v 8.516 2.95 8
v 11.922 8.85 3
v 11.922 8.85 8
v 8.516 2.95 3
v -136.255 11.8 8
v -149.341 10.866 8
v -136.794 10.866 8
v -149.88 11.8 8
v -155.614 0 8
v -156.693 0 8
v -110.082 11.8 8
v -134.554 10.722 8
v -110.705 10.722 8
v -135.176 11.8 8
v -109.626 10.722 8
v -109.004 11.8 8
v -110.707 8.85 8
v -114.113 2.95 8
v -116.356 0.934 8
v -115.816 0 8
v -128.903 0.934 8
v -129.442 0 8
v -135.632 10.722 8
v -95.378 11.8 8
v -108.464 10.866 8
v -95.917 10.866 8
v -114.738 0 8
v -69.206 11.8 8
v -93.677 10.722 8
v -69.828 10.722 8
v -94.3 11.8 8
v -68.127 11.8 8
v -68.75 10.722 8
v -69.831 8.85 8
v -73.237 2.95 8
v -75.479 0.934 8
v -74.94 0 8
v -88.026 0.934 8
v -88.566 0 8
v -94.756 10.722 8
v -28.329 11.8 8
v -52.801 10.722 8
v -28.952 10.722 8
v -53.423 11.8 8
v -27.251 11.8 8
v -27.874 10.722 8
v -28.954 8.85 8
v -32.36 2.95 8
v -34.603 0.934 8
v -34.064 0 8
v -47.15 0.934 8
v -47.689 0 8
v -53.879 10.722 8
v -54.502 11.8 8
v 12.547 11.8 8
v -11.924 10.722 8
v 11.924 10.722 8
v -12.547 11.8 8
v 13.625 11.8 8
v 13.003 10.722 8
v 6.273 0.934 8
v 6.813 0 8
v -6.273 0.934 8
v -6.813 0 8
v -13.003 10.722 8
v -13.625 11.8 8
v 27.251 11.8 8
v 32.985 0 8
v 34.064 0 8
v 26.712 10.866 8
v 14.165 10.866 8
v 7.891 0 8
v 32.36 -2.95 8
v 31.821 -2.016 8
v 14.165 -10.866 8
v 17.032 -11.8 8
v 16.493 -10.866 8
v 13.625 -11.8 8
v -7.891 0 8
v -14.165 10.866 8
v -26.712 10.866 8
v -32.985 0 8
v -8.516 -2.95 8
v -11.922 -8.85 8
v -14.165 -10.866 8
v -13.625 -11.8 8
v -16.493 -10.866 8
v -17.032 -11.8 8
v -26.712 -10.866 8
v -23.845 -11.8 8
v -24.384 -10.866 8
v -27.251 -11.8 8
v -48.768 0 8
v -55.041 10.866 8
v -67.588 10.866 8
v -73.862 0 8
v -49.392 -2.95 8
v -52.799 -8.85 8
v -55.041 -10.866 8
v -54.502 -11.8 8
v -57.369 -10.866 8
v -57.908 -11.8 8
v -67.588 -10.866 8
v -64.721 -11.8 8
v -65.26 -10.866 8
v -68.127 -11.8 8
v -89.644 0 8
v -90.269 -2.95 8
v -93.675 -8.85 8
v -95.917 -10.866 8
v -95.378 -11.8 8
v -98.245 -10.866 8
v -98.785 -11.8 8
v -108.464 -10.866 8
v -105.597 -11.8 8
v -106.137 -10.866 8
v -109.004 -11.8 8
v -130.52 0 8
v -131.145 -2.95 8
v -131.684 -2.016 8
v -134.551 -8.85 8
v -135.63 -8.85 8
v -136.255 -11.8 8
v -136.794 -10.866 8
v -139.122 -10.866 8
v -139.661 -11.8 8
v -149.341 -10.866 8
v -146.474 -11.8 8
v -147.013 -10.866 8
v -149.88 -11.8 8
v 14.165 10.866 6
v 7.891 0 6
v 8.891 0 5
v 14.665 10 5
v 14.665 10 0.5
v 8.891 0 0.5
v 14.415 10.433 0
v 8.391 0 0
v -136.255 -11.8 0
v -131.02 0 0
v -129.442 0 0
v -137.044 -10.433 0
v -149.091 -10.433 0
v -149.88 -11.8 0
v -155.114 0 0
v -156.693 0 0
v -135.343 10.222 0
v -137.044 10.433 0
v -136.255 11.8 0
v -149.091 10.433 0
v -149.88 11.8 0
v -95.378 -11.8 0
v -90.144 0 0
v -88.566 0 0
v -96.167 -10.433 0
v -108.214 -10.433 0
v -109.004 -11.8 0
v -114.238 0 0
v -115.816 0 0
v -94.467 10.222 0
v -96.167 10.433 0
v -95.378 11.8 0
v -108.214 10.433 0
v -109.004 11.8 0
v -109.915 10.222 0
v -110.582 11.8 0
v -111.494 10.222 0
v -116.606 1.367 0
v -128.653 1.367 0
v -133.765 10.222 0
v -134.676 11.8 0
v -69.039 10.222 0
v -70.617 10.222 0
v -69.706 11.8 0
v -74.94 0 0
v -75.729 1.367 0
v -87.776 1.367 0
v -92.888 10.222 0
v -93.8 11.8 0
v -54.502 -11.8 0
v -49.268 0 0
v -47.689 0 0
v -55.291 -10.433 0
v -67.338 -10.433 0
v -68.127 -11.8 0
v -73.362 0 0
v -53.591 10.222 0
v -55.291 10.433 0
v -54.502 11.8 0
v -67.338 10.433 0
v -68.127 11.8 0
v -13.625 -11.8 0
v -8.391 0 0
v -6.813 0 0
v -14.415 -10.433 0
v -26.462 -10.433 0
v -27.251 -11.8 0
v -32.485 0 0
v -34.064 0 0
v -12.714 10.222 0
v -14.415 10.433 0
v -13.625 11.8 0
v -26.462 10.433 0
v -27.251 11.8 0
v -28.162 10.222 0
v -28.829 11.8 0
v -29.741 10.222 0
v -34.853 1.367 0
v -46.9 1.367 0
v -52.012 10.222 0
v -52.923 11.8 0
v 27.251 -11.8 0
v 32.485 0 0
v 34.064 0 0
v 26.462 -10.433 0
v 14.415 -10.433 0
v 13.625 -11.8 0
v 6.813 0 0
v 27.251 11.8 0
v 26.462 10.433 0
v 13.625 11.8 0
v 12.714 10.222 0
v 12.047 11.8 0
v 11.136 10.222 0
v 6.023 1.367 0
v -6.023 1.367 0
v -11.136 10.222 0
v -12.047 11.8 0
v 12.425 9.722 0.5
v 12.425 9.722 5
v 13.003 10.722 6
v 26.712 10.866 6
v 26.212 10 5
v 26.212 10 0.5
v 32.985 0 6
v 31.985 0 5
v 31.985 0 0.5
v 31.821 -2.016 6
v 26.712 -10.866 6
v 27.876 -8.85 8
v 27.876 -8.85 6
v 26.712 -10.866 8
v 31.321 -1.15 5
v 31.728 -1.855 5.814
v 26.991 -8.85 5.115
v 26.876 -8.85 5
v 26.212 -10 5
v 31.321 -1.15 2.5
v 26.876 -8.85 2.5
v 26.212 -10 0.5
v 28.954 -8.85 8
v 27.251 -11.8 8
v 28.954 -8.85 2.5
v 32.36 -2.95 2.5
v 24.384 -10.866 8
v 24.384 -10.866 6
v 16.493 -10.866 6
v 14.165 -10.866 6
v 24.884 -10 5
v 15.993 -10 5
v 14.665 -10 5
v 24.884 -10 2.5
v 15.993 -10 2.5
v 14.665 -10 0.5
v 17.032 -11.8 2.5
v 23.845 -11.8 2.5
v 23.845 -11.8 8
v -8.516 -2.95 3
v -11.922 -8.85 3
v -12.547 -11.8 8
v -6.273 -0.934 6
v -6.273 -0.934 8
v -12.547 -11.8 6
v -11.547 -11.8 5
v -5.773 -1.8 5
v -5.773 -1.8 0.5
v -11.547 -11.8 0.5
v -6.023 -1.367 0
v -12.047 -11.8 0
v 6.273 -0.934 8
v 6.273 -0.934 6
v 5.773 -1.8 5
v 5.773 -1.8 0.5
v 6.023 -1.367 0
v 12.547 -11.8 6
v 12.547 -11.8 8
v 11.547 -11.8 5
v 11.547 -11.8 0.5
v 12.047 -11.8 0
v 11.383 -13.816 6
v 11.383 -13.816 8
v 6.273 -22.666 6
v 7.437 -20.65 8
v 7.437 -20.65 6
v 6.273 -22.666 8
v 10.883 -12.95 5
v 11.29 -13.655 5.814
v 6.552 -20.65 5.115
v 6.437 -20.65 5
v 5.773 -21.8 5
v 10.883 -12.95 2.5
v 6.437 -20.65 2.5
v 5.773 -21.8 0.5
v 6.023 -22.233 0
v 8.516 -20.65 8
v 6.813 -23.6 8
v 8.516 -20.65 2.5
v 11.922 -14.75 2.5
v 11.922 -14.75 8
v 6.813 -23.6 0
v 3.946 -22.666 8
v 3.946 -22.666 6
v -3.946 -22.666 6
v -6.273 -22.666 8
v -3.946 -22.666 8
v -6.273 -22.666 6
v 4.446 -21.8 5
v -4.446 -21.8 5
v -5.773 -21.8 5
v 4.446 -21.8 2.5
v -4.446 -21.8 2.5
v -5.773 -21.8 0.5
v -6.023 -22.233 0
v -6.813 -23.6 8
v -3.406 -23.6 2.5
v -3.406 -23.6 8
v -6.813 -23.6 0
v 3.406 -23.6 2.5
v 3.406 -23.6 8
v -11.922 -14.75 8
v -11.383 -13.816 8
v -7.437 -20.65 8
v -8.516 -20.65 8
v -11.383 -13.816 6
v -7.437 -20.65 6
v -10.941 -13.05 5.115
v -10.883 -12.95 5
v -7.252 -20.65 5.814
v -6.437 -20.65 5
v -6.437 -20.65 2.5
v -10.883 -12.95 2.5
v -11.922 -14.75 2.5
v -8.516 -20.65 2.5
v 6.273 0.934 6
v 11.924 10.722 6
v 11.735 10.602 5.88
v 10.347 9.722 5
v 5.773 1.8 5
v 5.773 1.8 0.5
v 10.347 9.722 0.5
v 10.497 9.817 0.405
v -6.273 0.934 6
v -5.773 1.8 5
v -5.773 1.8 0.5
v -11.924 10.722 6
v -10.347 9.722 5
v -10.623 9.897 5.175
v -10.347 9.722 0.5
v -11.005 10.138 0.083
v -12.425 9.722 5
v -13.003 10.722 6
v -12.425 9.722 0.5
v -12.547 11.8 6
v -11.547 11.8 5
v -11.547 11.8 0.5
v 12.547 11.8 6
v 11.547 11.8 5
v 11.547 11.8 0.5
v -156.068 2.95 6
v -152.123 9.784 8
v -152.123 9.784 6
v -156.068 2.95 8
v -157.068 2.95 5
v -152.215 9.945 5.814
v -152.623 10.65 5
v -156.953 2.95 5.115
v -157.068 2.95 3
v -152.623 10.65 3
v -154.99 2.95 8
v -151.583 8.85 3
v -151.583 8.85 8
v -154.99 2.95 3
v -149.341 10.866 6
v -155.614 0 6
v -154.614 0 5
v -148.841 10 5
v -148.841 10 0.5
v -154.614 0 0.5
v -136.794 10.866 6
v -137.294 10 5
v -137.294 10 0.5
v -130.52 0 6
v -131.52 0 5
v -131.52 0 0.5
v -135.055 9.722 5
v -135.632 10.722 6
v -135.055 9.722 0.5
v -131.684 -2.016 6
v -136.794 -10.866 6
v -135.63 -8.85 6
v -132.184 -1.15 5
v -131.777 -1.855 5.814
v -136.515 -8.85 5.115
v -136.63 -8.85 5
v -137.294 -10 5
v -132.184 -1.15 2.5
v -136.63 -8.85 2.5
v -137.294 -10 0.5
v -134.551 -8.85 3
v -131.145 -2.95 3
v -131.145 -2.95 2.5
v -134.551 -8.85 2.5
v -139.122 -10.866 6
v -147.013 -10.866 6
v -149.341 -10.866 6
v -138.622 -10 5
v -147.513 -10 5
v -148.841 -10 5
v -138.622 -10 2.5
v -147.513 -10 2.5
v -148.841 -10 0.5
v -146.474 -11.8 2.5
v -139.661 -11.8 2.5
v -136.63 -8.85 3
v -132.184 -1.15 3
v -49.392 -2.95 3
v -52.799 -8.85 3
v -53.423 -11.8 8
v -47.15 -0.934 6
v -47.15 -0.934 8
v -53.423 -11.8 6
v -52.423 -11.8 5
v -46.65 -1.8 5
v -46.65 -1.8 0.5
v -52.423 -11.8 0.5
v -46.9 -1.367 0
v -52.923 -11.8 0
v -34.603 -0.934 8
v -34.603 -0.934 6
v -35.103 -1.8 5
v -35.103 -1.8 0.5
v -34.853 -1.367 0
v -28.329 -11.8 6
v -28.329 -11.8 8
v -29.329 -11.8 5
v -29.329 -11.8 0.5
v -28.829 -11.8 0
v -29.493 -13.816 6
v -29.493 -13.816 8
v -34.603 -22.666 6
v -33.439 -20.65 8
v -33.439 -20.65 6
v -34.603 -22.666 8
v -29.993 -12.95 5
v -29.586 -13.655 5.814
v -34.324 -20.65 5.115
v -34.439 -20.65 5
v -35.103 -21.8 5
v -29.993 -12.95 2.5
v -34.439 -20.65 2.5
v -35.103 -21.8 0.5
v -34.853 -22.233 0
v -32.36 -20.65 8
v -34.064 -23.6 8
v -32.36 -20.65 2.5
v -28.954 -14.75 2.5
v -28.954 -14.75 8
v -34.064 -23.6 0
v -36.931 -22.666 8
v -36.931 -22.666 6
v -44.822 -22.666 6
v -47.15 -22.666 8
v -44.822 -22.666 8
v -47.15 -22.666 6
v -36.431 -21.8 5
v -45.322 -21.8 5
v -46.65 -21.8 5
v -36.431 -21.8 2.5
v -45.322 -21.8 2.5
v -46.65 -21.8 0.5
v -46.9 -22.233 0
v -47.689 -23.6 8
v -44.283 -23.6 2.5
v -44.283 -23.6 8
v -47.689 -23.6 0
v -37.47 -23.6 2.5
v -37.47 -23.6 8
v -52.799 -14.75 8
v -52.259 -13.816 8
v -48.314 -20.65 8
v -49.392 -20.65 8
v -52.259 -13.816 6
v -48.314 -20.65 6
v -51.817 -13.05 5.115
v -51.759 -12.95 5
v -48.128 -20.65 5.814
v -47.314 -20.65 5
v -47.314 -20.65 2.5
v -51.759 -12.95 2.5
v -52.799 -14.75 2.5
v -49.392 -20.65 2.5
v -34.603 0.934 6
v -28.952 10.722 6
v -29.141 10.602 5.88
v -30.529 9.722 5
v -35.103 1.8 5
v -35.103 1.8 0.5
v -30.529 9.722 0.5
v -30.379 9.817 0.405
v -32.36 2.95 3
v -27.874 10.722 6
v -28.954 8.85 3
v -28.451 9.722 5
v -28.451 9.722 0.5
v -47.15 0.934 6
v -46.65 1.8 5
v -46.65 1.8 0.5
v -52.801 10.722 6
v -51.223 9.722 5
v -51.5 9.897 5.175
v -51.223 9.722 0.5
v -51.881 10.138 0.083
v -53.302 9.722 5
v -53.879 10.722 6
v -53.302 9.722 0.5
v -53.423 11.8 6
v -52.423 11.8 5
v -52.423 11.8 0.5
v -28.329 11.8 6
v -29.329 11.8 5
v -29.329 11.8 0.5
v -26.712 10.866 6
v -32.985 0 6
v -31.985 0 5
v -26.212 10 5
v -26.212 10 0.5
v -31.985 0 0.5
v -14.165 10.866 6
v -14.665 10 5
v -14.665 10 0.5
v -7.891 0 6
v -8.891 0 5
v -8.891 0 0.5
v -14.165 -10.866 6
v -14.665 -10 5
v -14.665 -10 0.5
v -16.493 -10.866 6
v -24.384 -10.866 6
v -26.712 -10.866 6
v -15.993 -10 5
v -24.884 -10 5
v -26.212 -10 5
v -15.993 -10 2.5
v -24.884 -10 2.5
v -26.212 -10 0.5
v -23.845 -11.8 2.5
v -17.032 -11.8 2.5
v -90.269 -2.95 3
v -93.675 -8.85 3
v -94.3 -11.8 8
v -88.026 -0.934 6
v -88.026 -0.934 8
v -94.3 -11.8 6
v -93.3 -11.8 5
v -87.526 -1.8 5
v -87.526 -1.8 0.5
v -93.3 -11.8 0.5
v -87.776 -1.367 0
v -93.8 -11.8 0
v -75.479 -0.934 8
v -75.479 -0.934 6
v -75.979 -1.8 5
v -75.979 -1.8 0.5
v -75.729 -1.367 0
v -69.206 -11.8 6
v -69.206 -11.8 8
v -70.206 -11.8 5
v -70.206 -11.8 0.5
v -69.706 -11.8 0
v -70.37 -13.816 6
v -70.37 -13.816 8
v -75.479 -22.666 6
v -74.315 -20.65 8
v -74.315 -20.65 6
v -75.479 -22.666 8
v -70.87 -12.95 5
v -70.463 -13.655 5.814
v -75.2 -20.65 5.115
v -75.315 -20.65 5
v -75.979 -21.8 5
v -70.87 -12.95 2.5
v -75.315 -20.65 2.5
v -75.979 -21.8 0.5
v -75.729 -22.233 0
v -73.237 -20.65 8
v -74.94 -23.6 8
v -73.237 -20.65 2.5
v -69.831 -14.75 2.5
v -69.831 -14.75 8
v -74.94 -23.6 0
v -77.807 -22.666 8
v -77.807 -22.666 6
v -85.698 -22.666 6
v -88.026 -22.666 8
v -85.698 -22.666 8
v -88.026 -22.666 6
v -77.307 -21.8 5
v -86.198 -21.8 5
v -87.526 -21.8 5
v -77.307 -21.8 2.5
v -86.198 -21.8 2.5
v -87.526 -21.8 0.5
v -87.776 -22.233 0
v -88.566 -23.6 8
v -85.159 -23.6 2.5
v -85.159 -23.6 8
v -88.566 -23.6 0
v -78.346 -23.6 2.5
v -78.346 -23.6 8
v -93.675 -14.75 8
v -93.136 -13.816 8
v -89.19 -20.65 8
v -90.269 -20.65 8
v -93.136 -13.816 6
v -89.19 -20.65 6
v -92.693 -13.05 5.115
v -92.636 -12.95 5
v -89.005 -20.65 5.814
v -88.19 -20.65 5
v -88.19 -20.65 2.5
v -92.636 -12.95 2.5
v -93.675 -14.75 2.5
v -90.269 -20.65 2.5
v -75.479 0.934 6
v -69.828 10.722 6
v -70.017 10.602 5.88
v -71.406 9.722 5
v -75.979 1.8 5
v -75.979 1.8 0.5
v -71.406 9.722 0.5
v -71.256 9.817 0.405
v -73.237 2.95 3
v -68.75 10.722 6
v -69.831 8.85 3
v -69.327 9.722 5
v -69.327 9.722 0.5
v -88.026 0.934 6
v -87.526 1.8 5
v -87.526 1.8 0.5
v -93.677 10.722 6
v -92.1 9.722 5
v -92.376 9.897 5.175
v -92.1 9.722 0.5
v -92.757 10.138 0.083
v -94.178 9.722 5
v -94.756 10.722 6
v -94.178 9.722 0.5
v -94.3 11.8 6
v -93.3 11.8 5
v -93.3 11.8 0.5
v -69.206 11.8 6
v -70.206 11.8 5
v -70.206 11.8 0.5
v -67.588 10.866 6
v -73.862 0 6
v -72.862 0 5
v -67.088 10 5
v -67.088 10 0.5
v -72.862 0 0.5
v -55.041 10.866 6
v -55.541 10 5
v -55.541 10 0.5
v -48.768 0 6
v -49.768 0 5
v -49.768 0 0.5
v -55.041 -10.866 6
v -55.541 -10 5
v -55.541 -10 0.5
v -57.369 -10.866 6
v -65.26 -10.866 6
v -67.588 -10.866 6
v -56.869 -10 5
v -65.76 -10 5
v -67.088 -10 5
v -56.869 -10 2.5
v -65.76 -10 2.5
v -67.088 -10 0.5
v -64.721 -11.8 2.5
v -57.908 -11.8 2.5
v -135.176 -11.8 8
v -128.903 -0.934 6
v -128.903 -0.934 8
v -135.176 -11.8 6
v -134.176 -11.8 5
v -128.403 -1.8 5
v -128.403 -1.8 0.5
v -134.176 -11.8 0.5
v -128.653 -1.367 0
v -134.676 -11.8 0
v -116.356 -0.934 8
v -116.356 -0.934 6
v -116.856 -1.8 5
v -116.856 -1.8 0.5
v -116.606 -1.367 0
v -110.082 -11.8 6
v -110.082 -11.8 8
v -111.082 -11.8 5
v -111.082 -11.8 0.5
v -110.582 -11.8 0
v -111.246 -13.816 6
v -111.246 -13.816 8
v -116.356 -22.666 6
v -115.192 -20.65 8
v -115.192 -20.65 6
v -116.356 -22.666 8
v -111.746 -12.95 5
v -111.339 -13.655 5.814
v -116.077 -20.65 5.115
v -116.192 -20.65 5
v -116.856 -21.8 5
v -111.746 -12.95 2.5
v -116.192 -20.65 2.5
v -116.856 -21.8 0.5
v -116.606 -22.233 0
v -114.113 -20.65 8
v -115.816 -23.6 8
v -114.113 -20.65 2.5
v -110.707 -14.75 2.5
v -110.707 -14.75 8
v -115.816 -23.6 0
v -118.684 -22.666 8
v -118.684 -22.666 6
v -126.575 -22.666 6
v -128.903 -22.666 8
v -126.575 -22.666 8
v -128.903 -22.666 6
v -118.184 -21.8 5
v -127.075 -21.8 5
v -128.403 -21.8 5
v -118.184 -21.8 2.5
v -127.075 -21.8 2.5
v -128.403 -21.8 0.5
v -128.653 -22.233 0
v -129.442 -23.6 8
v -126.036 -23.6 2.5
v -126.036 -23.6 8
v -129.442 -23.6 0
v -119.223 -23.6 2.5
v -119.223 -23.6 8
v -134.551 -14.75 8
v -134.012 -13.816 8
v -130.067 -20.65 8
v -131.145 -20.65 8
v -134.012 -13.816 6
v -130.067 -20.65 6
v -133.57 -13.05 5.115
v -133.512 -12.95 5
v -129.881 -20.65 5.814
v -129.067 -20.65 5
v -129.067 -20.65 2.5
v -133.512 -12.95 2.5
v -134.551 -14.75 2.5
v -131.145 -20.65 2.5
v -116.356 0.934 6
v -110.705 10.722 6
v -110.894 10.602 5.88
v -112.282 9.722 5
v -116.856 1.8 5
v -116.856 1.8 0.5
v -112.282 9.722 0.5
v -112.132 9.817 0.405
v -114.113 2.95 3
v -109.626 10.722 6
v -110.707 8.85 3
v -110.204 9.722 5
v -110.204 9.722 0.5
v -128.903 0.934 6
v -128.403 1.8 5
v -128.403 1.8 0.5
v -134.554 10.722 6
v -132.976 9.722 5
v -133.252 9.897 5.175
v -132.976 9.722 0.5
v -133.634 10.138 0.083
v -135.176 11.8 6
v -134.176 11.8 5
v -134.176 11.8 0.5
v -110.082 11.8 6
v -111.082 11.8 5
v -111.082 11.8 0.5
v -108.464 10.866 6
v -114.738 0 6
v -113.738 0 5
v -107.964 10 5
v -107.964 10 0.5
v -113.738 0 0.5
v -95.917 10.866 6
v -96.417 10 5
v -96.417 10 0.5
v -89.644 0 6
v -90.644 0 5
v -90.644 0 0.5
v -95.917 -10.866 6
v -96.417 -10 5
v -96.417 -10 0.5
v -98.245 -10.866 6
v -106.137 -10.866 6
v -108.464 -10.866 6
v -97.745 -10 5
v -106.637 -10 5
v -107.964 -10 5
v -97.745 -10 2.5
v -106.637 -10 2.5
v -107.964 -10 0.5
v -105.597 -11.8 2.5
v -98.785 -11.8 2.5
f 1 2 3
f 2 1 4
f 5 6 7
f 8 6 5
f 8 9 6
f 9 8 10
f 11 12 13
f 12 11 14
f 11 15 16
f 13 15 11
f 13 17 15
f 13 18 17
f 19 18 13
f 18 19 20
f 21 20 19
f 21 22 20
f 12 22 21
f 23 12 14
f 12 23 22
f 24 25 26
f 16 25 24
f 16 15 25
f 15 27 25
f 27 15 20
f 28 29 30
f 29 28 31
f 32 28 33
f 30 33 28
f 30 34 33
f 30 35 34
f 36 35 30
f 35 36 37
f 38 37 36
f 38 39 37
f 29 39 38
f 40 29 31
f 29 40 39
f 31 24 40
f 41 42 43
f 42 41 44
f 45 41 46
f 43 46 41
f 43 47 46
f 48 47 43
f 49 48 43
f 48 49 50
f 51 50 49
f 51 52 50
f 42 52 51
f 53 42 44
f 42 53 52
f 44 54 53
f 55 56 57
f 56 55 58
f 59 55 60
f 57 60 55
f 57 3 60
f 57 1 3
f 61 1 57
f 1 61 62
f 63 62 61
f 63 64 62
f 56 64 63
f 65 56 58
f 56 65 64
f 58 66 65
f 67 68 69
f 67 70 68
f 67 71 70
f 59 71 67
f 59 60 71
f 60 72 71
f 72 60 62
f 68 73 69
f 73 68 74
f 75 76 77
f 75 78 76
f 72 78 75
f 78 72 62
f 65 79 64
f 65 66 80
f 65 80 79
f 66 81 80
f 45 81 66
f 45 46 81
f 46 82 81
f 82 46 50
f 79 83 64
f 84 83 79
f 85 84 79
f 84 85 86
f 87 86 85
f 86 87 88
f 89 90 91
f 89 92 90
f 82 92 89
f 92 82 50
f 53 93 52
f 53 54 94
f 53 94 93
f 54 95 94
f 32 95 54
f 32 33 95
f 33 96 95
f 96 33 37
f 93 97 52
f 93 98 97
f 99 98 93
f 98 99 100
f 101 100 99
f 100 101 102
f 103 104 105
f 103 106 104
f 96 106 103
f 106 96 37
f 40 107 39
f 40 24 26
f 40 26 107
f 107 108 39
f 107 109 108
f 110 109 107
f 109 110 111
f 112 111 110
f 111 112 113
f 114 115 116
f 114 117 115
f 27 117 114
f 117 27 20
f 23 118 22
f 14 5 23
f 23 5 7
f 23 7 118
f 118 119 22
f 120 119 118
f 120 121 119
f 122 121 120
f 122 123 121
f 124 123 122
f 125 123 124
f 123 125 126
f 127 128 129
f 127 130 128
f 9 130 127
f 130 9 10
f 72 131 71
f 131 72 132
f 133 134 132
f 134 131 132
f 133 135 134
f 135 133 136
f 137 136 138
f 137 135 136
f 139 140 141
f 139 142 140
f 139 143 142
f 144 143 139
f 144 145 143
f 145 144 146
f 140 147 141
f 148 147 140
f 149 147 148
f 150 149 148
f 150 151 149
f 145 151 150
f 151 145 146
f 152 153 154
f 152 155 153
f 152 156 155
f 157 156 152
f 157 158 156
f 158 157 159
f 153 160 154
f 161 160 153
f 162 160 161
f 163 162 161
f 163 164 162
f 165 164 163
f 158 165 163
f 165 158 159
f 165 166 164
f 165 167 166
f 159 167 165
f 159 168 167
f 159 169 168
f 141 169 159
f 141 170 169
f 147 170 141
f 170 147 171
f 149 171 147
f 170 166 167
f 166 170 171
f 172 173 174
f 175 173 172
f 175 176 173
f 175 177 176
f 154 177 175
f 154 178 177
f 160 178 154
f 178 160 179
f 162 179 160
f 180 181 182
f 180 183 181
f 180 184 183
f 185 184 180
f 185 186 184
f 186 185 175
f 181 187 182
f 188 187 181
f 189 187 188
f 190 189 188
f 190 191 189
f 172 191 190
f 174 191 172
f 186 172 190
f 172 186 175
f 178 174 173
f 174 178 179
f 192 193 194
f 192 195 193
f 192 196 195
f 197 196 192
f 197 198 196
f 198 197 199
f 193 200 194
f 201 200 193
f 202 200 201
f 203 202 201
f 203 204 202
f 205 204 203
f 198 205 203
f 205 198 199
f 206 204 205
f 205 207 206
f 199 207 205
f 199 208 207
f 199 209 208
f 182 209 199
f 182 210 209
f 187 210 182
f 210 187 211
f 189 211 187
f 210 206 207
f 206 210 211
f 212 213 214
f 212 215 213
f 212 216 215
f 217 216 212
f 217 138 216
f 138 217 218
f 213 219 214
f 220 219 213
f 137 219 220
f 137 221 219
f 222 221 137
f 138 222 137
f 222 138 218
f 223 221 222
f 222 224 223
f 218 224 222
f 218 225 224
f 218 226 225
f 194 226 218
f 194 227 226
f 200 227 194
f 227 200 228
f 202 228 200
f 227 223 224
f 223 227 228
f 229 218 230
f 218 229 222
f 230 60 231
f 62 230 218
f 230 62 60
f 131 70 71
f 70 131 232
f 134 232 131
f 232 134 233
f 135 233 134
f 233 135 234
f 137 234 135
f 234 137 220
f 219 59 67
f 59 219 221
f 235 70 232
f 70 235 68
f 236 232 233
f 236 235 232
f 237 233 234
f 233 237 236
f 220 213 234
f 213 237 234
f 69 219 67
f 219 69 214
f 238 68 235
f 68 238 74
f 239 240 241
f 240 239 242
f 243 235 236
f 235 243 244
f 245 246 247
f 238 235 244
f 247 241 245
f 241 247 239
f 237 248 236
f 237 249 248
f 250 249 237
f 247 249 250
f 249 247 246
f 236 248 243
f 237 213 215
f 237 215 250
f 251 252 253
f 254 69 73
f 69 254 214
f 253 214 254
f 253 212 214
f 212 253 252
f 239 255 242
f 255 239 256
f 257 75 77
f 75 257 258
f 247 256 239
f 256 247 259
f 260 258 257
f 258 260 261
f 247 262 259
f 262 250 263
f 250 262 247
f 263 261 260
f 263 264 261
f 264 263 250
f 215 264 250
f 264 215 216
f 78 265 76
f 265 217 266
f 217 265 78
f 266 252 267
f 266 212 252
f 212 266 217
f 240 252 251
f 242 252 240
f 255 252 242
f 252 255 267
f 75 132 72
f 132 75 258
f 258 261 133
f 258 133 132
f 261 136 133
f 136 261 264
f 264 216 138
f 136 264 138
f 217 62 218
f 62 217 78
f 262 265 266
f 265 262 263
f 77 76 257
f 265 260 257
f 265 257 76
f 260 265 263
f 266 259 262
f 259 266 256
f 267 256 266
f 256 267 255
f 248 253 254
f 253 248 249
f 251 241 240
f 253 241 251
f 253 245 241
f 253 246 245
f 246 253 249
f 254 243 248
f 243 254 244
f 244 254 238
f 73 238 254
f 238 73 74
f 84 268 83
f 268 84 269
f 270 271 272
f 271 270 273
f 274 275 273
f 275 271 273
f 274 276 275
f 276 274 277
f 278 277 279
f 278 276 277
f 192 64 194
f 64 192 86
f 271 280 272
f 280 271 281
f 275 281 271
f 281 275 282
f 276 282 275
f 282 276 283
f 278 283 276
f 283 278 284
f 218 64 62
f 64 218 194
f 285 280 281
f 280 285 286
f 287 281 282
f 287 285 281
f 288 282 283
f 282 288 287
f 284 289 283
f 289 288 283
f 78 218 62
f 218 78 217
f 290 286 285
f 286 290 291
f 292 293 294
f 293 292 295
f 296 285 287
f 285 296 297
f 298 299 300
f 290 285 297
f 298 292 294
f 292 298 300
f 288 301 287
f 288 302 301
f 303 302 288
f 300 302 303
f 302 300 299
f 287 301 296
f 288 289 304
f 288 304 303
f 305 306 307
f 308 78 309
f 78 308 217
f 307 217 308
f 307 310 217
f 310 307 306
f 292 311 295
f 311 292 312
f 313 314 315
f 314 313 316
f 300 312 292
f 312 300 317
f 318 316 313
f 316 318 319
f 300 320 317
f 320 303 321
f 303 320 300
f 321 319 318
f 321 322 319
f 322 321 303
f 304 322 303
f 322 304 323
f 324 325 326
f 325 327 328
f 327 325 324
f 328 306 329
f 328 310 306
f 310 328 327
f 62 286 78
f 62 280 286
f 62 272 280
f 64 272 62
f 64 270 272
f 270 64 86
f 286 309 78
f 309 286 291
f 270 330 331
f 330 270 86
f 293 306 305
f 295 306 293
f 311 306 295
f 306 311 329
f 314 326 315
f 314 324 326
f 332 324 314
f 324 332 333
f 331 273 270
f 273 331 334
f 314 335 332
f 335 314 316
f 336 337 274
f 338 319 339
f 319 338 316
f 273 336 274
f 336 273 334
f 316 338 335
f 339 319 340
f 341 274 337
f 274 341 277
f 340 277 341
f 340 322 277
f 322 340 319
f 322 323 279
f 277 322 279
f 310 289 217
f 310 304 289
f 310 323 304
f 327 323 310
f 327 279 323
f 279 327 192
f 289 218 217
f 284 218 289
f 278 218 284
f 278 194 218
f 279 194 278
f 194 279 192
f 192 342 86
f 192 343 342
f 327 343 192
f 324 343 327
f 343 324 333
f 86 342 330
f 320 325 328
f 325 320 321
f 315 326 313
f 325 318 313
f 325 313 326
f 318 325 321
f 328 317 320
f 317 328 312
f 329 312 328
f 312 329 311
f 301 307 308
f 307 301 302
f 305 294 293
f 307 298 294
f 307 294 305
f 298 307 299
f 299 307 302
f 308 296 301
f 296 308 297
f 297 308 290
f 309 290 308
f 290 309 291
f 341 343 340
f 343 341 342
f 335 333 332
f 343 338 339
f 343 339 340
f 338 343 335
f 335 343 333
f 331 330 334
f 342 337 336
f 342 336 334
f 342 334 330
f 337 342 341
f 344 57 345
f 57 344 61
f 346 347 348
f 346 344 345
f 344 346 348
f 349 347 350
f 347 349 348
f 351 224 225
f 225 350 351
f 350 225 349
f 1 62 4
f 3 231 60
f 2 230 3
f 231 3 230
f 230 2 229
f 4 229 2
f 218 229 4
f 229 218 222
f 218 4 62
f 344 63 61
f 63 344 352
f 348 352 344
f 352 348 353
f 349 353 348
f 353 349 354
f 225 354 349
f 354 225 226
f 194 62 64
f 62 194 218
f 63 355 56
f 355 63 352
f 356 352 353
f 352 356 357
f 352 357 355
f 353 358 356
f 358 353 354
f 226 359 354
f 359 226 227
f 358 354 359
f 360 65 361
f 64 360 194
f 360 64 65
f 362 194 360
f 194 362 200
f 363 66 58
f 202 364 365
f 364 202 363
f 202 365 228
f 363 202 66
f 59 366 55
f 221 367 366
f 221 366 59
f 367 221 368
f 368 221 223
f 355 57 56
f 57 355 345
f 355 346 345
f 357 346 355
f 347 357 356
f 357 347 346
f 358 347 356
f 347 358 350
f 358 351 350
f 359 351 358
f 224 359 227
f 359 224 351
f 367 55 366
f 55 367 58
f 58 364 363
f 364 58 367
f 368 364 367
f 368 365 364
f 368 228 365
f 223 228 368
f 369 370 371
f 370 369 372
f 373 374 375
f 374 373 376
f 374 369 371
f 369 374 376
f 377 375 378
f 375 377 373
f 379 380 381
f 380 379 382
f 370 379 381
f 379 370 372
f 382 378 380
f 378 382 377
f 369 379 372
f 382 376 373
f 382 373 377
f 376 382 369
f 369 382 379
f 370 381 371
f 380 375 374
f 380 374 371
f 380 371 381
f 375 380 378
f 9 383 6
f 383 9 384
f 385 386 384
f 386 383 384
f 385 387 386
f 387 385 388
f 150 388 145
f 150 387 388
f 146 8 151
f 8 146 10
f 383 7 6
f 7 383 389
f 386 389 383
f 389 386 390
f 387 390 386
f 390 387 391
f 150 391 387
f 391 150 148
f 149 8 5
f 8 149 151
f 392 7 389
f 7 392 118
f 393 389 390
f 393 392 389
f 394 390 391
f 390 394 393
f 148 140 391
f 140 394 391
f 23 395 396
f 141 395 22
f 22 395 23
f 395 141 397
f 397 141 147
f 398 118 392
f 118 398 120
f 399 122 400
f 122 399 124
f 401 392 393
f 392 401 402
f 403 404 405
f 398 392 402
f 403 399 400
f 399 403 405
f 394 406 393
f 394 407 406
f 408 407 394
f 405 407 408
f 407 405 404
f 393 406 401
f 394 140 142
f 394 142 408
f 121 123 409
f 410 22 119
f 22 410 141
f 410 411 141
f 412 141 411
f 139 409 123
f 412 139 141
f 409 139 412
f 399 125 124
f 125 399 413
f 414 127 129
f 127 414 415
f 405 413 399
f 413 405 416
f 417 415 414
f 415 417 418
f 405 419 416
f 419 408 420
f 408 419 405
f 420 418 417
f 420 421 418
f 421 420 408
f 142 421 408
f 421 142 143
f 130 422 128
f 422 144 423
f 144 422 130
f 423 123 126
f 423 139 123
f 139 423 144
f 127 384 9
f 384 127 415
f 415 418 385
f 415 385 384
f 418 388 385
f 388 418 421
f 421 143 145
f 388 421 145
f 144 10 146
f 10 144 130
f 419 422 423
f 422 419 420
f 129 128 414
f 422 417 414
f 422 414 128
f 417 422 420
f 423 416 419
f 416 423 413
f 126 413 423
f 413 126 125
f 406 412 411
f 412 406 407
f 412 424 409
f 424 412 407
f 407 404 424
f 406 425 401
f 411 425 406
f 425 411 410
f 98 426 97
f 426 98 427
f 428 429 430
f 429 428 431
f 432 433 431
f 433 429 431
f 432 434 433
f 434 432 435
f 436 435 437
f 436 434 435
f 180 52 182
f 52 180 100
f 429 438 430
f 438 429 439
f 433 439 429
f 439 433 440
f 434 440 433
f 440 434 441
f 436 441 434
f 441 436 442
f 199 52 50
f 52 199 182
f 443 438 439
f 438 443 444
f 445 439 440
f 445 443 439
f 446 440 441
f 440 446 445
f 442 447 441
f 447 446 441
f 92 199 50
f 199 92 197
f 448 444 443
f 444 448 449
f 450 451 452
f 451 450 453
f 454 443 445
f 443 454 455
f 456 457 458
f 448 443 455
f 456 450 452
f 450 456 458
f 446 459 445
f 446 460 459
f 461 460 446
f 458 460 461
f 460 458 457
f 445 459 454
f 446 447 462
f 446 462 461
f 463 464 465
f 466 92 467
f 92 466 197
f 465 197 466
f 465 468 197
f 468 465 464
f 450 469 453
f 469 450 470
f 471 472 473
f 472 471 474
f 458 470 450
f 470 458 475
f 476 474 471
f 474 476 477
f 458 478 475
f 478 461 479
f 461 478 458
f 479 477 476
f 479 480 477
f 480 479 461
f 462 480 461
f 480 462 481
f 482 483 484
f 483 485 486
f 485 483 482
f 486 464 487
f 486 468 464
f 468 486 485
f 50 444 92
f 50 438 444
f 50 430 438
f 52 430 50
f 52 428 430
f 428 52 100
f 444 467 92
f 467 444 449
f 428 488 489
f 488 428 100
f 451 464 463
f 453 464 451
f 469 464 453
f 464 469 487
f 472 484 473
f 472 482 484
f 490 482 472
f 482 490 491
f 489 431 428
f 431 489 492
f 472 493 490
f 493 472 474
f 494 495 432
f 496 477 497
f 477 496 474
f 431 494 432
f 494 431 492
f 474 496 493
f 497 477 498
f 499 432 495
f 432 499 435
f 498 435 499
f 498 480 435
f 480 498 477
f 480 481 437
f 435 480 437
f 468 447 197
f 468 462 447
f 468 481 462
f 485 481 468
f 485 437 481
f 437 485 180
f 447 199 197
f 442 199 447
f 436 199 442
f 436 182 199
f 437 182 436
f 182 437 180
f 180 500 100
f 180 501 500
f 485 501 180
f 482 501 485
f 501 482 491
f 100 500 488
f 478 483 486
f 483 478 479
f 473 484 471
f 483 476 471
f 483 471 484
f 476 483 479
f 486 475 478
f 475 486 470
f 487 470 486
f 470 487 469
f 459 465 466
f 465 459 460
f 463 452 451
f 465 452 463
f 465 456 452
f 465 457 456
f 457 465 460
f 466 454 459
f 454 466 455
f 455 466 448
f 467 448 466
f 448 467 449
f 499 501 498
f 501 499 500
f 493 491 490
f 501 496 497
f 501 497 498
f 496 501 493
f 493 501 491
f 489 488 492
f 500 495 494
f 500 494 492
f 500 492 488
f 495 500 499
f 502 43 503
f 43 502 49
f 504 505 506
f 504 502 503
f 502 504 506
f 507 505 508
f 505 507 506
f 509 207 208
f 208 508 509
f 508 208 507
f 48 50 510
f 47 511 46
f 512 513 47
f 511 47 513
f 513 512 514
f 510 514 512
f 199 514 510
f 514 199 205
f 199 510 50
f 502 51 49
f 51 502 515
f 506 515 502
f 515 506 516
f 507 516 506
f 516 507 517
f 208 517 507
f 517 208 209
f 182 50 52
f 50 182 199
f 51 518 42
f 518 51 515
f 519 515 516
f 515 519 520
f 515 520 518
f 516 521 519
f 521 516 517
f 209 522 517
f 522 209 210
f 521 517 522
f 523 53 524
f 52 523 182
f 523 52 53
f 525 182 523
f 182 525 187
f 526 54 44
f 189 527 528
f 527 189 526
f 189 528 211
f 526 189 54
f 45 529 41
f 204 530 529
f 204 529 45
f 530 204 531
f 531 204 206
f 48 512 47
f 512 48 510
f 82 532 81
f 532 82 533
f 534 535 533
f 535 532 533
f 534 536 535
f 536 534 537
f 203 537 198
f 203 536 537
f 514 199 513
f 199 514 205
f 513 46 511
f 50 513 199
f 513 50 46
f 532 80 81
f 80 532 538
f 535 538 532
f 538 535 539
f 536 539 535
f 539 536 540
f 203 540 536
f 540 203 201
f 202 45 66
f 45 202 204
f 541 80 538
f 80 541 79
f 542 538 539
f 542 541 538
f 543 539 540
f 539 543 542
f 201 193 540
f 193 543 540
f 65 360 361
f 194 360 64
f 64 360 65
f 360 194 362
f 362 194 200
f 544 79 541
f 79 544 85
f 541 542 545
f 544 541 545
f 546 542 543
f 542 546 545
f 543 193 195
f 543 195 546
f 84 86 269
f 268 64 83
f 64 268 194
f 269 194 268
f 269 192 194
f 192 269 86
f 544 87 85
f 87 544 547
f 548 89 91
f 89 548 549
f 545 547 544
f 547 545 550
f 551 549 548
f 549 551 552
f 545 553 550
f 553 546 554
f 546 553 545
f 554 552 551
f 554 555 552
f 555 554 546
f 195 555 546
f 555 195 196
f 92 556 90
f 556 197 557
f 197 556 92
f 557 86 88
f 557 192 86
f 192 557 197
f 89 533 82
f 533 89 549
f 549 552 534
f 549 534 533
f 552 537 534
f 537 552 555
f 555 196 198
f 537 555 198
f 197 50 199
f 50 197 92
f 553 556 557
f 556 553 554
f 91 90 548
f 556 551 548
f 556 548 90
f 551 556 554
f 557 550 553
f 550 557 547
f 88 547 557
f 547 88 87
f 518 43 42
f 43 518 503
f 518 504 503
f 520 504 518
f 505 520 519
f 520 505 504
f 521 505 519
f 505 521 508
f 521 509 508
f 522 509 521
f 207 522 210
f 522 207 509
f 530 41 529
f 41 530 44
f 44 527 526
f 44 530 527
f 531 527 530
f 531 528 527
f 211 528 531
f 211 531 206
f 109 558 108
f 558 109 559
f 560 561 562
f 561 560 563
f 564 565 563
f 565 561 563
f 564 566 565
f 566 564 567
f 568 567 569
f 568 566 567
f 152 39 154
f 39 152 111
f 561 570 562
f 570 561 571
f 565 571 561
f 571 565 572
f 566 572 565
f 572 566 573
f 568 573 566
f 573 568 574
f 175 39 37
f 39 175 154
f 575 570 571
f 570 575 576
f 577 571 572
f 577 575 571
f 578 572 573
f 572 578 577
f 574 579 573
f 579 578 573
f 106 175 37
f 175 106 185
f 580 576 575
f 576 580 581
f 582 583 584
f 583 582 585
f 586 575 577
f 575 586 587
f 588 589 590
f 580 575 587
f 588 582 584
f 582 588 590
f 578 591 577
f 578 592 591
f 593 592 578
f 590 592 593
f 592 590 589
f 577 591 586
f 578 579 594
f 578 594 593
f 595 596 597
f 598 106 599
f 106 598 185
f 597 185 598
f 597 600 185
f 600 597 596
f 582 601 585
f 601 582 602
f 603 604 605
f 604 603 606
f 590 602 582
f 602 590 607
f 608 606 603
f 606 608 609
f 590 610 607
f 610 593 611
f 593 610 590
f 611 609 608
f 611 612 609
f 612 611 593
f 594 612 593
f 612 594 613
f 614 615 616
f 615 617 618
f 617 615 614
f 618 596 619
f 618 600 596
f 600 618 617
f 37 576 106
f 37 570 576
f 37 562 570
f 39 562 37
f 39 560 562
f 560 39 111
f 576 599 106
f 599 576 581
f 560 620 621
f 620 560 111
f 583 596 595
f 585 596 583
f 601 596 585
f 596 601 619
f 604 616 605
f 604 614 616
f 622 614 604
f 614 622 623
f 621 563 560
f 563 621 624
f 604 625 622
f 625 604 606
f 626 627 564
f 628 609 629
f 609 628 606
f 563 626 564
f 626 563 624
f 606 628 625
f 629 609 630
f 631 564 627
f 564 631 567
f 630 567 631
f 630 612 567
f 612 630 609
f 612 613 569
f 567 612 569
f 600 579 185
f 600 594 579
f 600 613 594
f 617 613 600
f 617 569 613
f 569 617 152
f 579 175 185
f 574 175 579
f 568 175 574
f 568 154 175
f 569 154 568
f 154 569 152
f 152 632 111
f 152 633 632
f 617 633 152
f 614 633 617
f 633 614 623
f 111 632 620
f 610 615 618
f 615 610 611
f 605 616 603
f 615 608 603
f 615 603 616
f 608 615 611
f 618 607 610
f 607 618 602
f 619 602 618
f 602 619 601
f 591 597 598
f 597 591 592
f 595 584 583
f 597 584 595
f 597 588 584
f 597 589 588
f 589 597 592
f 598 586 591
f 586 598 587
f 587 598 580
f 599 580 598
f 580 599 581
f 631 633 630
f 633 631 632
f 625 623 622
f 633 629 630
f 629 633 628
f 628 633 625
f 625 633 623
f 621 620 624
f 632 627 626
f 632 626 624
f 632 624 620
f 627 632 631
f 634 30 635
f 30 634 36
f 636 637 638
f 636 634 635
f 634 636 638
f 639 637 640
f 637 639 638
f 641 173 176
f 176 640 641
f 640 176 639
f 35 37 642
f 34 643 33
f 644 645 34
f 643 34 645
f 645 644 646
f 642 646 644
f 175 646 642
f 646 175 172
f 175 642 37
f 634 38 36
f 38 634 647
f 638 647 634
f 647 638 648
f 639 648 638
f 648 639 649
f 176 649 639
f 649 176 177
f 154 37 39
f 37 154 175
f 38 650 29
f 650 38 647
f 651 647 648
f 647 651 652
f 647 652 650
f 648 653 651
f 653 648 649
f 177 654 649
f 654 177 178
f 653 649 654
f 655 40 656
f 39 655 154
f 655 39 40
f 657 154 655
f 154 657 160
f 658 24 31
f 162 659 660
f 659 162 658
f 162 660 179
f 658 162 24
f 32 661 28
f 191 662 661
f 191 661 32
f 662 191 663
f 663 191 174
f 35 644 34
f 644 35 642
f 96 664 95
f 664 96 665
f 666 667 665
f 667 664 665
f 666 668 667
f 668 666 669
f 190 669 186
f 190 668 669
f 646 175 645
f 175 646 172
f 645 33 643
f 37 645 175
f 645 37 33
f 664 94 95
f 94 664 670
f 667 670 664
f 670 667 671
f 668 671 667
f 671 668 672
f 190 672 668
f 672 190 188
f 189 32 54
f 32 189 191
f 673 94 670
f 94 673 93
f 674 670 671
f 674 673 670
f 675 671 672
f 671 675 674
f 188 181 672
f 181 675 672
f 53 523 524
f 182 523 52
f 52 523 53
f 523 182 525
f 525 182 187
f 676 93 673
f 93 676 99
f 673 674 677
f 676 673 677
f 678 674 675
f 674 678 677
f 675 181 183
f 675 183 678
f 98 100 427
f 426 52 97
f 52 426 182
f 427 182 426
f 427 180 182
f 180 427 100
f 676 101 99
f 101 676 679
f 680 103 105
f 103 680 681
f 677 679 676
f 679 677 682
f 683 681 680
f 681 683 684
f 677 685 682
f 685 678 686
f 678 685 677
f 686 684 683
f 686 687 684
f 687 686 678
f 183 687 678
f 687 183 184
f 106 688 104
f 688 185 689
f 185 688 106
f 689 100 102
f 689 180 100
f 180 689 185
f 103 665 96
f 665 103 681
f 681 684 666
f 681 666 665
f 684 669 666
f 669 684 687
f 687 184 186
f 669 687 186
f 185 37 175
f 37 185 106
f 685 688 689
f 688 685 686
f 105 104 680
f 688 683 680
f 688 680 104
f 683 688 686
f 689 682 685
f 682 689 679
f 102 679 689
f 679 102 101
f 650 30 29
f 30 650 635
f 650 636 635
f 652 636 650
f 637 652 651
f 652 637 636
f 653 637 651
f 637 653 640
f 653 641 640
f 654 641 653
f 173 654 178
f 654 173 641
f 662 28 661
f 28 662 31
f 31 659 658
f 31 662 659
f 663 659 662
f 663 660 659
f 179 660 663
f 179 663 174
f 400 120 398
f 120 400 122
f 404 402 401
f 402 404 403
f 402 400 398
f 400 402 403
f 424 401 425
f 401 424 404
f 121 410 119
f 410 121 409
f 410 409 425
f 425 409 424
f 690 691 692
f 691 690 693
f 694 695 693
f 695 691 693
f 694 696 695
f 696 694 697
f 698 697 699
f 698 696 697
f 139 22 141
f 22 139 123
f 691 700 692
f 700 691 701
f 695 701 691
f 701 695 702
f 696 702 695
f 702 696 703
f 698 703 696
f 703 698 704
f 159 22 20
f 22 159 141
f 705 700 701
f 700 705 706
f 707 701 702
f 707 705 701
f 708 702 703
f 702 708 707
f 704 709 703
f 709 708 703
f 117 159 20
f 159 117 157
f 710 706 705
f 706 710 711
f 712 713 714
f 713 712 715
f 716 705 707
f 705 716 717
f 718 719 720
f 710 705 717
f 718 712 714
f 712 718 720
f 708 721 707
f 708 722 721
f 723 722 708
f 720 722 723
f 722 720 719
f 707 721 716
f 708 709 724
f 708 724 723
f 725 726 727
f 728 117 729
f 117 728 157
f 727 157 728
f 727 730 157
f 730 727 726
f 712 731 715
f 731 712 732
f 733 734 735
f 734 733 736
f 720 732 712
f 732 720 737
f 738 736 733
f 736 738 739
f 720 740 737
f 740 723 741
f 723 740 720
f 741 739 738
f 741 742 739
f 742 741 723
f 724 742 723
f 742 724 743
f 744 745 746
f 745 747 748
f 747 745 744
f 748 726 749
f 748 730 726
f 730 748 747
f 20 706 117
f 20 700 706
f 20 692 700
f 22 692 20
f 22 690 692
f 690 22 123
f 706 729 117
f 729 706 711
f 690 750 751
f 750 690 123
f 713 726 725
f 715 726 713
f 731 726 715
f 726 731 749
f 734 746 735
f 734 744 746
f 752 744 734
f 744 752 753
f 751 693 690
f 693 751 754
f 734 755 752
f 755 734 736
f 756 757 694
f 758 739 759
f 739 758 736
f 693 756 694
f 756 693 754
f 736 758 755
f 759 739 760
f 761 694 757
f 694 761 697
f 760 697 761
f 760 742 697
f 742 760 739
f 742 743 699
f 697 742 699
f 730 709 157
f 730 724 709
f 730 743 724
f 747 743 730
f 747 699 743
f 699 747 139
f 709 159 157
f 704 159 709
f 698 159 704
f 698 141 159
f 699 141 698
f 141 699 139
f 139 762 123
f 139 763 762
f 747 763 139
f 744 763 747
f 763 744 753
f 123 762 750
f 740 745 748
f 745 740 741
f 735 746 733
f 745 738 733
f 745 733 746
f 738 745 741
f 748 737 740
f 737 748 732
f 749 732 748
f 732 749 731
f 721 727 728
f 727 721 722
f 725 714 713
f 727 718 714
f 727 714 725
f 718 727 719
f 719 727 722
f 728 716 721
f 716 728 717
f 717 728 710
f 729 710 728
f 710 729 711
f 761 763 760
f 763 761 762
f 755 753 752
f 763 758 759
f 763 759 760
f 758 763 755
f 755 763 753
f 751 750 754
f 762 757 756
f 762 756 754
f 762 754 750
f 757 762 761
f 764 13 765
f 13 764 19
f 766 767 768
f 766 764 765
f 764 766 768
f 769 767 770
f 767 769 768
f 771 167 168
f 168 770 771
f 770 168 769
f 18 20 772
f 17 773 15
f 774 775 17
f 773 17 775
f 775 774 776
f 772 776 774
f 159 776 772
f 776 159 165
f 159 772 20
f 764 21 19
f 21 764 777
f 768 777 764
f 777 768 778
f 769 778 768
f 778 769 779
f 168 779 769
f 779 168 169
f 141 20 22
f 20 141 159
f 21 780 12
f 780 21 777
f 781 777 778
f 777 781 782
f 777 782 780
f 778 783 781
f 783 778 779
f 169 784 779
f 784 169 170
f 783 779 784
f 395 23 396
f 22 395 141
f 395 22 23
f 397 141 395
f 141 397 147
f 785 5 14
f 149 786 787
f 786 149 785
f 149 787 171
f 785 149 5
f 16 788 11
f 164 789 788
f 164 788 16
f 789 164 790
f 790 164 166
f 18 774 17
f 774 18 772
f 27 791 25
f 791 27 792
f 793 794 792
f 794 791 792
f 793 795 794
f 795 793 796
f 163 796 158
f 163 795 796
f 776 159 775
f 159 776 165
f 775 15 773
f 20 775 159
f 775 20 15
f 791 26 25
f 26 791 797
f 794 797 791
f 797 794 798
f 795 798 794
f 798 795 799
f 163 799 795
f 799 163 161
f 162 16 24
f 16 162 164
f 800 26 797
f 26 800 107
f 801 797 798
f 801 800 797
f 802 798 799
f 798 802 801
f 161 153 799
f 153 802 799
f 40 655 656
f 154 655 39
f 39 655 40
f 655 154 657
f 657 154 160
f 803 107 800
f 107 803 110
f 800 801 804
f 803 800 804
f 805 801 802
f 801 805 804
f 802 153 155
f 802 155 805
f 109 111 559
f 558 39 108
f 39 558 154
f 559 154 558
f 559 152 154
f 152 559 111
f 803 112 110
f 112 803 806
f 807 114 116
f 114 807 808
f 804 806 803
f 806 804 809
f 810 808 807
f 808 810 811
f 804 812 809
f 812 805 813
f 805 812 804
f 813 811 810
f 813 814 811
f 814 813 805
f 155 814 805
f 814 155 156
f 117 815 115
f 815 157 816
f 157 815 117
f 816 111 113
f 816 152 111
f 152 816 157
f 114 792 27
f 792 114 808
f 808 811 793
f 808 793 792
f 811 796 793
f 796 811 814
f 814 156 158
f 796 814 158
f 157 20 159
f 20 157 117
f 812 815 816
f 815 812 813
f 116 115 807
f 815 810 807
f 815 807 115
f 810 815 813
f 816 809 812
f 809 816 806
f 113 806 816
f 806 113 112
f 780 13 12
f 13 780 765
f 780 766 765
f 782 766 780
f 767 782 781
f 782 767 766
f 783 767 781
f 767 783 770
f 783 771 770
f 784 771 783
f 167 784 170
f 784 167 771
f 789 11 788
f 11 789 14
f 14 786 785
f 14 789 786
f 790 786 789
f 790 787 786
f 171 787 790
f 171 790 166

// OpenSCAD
$fn = 50;

radius = 13.6;
diameter =  radius * 2;

h_inner = 10;
r_inner = h_inner * 2/sqrt(3);

h_outer = 10+1.8;
r_outer = h_outer * 2/sqrt(3);


h_thin = 10+1;
r_thin = h_thin * 2/sqrt(3);

total_height = 8;

small_value = 0.1;


clips_height = 5;
clips_offset = 0.5;
clips_side_offset = 0.00;


module basic_polygon() {
  polygon([[r_outer, total_height], [r_outer, 0], [r_inner+0.5, 0], [r_inner, 0.5], 
        [r_inner, total_height-3], [r_inner+1, total_height-2], [r_inner+1,total_height]]);    
}

module basic_model() {
  rotate_extrude($fn=6) {
      basic_polygon();
  }
}


module panel_with_clips(pin_1=false, pin_2=false, pin_3=false, pin_4=false, pin_5=false, pin_6=false, slot_1=false, slot_2=false, slot_3=false, slot_4=false, slot_5=false, slot_6=false) {

  difference() {
    basic_model();

    if (slot_1) {
      rotate([0, 0, 0])
        translate([0, -h_outer*2, total_height - (clips_height+clips_offset)/2])
          linear_extrude(height=clips_height+clips_offset, center=true)
            polygon([[clips_side_offset, h_outer/2], [-clips_side_offset, h_outer/2], [-r_outer/2-clips_side_offset, h_outer*1.5], [r_outer/2+clips_side_offset, h_outer*1.5]]);
    }

    if (slot_2) {
      rotate([0, 0, 60])
        translate([0, -h_outer*2, total_height - (clips_height+clips_offset)/2])
          linear_extrude(height=clips_height+clips_offset, center=true)
            polygon([[clips_side_offset, h_outer/2], [-clips_side_offset, h_outer/2], [-r_outer/2-clips_side_offset, h_outer*1.5], [r_outer/2+clips_side_offset, h_outer*1.5]]);
    }



    if (slot_3) {
      rotate([0, 0, 120])
        translate([0, -h_outer*2, total_height - (clips_height+clips_offset)/2])
          linear_extrude(height=clips_height+clips_offset, center=true)
            polygon([[clips_side_offset, h_outer/2], [-clips_side_offset, h_outer/2], [-r_outer/2-clips_side_offset, h_outer*1.5], [r_outer/2+clips_side_offset, h_outer*1.5]]);
    }

    if (slot_4) {
      rotate([0, 0, 180])
        translate([0, -h_outer*2, total_height - (clips_height+clips_offset)/2])
          linear_extrude(height=clips_height+clips_offset, center=true)
            polygon([[clips_side_offset, h_outer/2], [-clips_side_offset, h_outer/2], [-r_outer/2-clips_side_offset, h_outer*1.5], [r_outer/2+clips_side_offset, h_outer*1.5]]);
    }

    if (slot_5) {
      rotate([0, 0, 240])
        translate([0, -h_outer*2, total_height - (clips_height+clips_offset)/2])
          linear_extrude(height=clips_height+clips_offset, center=true)
            polygon([[clips_side_offset, h_outer/2], [-clips_side_offset, h_outer/2], [-r_outer/2-clips_side_offset, h_outer*1.5], [r_outer/2+clips_side_offset, h_outer*1.5]]);
    }

    if (slot_6) {
      rotate([0, 0, 300])
        translate([0, -h_outer*2, total_height - (clips_height+clips_offset)/2])
          linear_extrude(height=clips_height+clips_offset, center=true)
            polygon([[clips_side_offset, h_outer/2], [-clips_side_offset, h_outer/2], [-r_outer/2-clips_side_offset, h_outer*1.5], [r_outer/2+clips_side_offset, h_outer*1.5]]);
    }
  }


  if (pin_1) {
    intersection() {
      translate([0,-h_outer*2, 0])
        basic_model();
      translate([0, 0, total_height - clips_height/2]) {
        rotate([0, 0, -180])  
          linear_extrude(height=clips_height, center=true)
            polygon([[0, h_outer/2], [-r_outer/2, h_outer*1.5], [r_outer/2, h_outer*1.5]]);  
      }
    }
  }

  if (pin_2) {
    intersection() {
      translate([r_outer*1.5,-h_outer, 0])
        basic_model();
      translate([0, 0, total_height - clips_height/2]) {
        rotate([0, 0, -120])  
          linear_extrude(height=clips_height, center=true)
            polygon([[0, h_outer/2], [-r_outer/2, h_outer*1.5], [r_outer/2, h_outer*1.5]]);  
      }
    }
  }


  if (pin_3) {
    intersection() {
      translate([r_outer*1.5,h_outer, 0])
        basic_model();
      translate([0, 0, total_height - clips_height/2]) {
        rotate([0, 0, -60])  
          linear_extrude(height=clips_height, center=true)
            polygon([[0, h_outer/2], [-r_outer/2, h_outer*1.5], [r_outer/2, h_outer*1.5]]);  
      }
    }
  }

  if (pin_4) {
    intersection() {
      translate([0, h_outer*2, 0])
        basic_model();

      translate([0, 0, total_height - clips_height/2]) {
        linear_extrude(height=clips_height, center=true)
          polygon([[0, h_outer/2], [-r_outer/2, h_outer*1.5], [r_outer/2, h_outer*1.5]]);
      }  
    }
  }

  if (pin_5) {
    intersection() {
      translate([-r_outer*1.5,h_outer, 0])
        basic_model();
      translate([0, 0, total_height - clips_height/2]) {
        rotate([0, 0, 60])  
          linear_extrude(height=clips_height, center=true)
            polygon([[0, h_outer/2], [-r_outer/2, h_outer*1.5], [r_outer/2, h_outer*1.5]]);  
      }
    }
  }
  
  if (pin_6) {
    intersection() {
      translate([-r_outer*1.5, -h_outer, 0])
        basic_model();

      translate([0, 0, total_height - clips_height/2]) {
        rotate([0, 0, 120])  
          linear_extrude(height=clips_height, center=true)
            polygon([[0, h_outer/2], [-r_outer/2, h_outer*1.5], [r_outer/2, h_outer*1.5]]);  
      }
    }
  }
}

// end honeycomb_element.scad


// panel_with_clips();


//panel_9x9();

module perimeter_top_item(left_slot=false, middle_slot=false) {
  difference() {
    translate([0, h_outer, 0])
        panel_with_clips(slot_2=left_slot);  
    
    translate([0, 50+h_outer, 0])
        cube([100, 100, 100], center = true);
  }
  
  translate([r_outer*1.5, 0, 0])
     panel_with_clips(slot_1=true, slot_2=middle_slot,  pin_5=true); 
  
  translate([-r_outer*0, -h_outer, 0])
     panel_with_clips(slot_1=true, slot_2=true, slot_6=true, pin_5=true);   
  
    
  translate([0, h_outer-r_outer, 0])
      rotate([90, 0, 90])
        linear_extrude(height = r_outer * 2, center=true)
        basic_polygon();
    
}




module perimeter_bottom() {
    perimeter_top_item(left_slot=false, middle_slot=true);
    
    translate([-3*r_outer, 0, 0])
      perimeter_top_item();

    translate([-6*r_outer, 0, 0])
      perimeter_top_item();    
    
    translate([-9*r_outer, 0, 0])
      perimeter_top_item();    
    
    translate([-r_outer*10.5, 0, 0])
     panel_with_clips(slot_1=true, slot_2=true, slot_6=false, pin_5=true);   
  
//    
}



module perimeter_corner() {
    
    perimeter_bottom();
    
    //perimeter_left();


}



module wall_corner_perimeter() {
    
}


//wall_corner();
perimeter_corner();
//perimeter_corner();
//
//wall_corner_side_element();
